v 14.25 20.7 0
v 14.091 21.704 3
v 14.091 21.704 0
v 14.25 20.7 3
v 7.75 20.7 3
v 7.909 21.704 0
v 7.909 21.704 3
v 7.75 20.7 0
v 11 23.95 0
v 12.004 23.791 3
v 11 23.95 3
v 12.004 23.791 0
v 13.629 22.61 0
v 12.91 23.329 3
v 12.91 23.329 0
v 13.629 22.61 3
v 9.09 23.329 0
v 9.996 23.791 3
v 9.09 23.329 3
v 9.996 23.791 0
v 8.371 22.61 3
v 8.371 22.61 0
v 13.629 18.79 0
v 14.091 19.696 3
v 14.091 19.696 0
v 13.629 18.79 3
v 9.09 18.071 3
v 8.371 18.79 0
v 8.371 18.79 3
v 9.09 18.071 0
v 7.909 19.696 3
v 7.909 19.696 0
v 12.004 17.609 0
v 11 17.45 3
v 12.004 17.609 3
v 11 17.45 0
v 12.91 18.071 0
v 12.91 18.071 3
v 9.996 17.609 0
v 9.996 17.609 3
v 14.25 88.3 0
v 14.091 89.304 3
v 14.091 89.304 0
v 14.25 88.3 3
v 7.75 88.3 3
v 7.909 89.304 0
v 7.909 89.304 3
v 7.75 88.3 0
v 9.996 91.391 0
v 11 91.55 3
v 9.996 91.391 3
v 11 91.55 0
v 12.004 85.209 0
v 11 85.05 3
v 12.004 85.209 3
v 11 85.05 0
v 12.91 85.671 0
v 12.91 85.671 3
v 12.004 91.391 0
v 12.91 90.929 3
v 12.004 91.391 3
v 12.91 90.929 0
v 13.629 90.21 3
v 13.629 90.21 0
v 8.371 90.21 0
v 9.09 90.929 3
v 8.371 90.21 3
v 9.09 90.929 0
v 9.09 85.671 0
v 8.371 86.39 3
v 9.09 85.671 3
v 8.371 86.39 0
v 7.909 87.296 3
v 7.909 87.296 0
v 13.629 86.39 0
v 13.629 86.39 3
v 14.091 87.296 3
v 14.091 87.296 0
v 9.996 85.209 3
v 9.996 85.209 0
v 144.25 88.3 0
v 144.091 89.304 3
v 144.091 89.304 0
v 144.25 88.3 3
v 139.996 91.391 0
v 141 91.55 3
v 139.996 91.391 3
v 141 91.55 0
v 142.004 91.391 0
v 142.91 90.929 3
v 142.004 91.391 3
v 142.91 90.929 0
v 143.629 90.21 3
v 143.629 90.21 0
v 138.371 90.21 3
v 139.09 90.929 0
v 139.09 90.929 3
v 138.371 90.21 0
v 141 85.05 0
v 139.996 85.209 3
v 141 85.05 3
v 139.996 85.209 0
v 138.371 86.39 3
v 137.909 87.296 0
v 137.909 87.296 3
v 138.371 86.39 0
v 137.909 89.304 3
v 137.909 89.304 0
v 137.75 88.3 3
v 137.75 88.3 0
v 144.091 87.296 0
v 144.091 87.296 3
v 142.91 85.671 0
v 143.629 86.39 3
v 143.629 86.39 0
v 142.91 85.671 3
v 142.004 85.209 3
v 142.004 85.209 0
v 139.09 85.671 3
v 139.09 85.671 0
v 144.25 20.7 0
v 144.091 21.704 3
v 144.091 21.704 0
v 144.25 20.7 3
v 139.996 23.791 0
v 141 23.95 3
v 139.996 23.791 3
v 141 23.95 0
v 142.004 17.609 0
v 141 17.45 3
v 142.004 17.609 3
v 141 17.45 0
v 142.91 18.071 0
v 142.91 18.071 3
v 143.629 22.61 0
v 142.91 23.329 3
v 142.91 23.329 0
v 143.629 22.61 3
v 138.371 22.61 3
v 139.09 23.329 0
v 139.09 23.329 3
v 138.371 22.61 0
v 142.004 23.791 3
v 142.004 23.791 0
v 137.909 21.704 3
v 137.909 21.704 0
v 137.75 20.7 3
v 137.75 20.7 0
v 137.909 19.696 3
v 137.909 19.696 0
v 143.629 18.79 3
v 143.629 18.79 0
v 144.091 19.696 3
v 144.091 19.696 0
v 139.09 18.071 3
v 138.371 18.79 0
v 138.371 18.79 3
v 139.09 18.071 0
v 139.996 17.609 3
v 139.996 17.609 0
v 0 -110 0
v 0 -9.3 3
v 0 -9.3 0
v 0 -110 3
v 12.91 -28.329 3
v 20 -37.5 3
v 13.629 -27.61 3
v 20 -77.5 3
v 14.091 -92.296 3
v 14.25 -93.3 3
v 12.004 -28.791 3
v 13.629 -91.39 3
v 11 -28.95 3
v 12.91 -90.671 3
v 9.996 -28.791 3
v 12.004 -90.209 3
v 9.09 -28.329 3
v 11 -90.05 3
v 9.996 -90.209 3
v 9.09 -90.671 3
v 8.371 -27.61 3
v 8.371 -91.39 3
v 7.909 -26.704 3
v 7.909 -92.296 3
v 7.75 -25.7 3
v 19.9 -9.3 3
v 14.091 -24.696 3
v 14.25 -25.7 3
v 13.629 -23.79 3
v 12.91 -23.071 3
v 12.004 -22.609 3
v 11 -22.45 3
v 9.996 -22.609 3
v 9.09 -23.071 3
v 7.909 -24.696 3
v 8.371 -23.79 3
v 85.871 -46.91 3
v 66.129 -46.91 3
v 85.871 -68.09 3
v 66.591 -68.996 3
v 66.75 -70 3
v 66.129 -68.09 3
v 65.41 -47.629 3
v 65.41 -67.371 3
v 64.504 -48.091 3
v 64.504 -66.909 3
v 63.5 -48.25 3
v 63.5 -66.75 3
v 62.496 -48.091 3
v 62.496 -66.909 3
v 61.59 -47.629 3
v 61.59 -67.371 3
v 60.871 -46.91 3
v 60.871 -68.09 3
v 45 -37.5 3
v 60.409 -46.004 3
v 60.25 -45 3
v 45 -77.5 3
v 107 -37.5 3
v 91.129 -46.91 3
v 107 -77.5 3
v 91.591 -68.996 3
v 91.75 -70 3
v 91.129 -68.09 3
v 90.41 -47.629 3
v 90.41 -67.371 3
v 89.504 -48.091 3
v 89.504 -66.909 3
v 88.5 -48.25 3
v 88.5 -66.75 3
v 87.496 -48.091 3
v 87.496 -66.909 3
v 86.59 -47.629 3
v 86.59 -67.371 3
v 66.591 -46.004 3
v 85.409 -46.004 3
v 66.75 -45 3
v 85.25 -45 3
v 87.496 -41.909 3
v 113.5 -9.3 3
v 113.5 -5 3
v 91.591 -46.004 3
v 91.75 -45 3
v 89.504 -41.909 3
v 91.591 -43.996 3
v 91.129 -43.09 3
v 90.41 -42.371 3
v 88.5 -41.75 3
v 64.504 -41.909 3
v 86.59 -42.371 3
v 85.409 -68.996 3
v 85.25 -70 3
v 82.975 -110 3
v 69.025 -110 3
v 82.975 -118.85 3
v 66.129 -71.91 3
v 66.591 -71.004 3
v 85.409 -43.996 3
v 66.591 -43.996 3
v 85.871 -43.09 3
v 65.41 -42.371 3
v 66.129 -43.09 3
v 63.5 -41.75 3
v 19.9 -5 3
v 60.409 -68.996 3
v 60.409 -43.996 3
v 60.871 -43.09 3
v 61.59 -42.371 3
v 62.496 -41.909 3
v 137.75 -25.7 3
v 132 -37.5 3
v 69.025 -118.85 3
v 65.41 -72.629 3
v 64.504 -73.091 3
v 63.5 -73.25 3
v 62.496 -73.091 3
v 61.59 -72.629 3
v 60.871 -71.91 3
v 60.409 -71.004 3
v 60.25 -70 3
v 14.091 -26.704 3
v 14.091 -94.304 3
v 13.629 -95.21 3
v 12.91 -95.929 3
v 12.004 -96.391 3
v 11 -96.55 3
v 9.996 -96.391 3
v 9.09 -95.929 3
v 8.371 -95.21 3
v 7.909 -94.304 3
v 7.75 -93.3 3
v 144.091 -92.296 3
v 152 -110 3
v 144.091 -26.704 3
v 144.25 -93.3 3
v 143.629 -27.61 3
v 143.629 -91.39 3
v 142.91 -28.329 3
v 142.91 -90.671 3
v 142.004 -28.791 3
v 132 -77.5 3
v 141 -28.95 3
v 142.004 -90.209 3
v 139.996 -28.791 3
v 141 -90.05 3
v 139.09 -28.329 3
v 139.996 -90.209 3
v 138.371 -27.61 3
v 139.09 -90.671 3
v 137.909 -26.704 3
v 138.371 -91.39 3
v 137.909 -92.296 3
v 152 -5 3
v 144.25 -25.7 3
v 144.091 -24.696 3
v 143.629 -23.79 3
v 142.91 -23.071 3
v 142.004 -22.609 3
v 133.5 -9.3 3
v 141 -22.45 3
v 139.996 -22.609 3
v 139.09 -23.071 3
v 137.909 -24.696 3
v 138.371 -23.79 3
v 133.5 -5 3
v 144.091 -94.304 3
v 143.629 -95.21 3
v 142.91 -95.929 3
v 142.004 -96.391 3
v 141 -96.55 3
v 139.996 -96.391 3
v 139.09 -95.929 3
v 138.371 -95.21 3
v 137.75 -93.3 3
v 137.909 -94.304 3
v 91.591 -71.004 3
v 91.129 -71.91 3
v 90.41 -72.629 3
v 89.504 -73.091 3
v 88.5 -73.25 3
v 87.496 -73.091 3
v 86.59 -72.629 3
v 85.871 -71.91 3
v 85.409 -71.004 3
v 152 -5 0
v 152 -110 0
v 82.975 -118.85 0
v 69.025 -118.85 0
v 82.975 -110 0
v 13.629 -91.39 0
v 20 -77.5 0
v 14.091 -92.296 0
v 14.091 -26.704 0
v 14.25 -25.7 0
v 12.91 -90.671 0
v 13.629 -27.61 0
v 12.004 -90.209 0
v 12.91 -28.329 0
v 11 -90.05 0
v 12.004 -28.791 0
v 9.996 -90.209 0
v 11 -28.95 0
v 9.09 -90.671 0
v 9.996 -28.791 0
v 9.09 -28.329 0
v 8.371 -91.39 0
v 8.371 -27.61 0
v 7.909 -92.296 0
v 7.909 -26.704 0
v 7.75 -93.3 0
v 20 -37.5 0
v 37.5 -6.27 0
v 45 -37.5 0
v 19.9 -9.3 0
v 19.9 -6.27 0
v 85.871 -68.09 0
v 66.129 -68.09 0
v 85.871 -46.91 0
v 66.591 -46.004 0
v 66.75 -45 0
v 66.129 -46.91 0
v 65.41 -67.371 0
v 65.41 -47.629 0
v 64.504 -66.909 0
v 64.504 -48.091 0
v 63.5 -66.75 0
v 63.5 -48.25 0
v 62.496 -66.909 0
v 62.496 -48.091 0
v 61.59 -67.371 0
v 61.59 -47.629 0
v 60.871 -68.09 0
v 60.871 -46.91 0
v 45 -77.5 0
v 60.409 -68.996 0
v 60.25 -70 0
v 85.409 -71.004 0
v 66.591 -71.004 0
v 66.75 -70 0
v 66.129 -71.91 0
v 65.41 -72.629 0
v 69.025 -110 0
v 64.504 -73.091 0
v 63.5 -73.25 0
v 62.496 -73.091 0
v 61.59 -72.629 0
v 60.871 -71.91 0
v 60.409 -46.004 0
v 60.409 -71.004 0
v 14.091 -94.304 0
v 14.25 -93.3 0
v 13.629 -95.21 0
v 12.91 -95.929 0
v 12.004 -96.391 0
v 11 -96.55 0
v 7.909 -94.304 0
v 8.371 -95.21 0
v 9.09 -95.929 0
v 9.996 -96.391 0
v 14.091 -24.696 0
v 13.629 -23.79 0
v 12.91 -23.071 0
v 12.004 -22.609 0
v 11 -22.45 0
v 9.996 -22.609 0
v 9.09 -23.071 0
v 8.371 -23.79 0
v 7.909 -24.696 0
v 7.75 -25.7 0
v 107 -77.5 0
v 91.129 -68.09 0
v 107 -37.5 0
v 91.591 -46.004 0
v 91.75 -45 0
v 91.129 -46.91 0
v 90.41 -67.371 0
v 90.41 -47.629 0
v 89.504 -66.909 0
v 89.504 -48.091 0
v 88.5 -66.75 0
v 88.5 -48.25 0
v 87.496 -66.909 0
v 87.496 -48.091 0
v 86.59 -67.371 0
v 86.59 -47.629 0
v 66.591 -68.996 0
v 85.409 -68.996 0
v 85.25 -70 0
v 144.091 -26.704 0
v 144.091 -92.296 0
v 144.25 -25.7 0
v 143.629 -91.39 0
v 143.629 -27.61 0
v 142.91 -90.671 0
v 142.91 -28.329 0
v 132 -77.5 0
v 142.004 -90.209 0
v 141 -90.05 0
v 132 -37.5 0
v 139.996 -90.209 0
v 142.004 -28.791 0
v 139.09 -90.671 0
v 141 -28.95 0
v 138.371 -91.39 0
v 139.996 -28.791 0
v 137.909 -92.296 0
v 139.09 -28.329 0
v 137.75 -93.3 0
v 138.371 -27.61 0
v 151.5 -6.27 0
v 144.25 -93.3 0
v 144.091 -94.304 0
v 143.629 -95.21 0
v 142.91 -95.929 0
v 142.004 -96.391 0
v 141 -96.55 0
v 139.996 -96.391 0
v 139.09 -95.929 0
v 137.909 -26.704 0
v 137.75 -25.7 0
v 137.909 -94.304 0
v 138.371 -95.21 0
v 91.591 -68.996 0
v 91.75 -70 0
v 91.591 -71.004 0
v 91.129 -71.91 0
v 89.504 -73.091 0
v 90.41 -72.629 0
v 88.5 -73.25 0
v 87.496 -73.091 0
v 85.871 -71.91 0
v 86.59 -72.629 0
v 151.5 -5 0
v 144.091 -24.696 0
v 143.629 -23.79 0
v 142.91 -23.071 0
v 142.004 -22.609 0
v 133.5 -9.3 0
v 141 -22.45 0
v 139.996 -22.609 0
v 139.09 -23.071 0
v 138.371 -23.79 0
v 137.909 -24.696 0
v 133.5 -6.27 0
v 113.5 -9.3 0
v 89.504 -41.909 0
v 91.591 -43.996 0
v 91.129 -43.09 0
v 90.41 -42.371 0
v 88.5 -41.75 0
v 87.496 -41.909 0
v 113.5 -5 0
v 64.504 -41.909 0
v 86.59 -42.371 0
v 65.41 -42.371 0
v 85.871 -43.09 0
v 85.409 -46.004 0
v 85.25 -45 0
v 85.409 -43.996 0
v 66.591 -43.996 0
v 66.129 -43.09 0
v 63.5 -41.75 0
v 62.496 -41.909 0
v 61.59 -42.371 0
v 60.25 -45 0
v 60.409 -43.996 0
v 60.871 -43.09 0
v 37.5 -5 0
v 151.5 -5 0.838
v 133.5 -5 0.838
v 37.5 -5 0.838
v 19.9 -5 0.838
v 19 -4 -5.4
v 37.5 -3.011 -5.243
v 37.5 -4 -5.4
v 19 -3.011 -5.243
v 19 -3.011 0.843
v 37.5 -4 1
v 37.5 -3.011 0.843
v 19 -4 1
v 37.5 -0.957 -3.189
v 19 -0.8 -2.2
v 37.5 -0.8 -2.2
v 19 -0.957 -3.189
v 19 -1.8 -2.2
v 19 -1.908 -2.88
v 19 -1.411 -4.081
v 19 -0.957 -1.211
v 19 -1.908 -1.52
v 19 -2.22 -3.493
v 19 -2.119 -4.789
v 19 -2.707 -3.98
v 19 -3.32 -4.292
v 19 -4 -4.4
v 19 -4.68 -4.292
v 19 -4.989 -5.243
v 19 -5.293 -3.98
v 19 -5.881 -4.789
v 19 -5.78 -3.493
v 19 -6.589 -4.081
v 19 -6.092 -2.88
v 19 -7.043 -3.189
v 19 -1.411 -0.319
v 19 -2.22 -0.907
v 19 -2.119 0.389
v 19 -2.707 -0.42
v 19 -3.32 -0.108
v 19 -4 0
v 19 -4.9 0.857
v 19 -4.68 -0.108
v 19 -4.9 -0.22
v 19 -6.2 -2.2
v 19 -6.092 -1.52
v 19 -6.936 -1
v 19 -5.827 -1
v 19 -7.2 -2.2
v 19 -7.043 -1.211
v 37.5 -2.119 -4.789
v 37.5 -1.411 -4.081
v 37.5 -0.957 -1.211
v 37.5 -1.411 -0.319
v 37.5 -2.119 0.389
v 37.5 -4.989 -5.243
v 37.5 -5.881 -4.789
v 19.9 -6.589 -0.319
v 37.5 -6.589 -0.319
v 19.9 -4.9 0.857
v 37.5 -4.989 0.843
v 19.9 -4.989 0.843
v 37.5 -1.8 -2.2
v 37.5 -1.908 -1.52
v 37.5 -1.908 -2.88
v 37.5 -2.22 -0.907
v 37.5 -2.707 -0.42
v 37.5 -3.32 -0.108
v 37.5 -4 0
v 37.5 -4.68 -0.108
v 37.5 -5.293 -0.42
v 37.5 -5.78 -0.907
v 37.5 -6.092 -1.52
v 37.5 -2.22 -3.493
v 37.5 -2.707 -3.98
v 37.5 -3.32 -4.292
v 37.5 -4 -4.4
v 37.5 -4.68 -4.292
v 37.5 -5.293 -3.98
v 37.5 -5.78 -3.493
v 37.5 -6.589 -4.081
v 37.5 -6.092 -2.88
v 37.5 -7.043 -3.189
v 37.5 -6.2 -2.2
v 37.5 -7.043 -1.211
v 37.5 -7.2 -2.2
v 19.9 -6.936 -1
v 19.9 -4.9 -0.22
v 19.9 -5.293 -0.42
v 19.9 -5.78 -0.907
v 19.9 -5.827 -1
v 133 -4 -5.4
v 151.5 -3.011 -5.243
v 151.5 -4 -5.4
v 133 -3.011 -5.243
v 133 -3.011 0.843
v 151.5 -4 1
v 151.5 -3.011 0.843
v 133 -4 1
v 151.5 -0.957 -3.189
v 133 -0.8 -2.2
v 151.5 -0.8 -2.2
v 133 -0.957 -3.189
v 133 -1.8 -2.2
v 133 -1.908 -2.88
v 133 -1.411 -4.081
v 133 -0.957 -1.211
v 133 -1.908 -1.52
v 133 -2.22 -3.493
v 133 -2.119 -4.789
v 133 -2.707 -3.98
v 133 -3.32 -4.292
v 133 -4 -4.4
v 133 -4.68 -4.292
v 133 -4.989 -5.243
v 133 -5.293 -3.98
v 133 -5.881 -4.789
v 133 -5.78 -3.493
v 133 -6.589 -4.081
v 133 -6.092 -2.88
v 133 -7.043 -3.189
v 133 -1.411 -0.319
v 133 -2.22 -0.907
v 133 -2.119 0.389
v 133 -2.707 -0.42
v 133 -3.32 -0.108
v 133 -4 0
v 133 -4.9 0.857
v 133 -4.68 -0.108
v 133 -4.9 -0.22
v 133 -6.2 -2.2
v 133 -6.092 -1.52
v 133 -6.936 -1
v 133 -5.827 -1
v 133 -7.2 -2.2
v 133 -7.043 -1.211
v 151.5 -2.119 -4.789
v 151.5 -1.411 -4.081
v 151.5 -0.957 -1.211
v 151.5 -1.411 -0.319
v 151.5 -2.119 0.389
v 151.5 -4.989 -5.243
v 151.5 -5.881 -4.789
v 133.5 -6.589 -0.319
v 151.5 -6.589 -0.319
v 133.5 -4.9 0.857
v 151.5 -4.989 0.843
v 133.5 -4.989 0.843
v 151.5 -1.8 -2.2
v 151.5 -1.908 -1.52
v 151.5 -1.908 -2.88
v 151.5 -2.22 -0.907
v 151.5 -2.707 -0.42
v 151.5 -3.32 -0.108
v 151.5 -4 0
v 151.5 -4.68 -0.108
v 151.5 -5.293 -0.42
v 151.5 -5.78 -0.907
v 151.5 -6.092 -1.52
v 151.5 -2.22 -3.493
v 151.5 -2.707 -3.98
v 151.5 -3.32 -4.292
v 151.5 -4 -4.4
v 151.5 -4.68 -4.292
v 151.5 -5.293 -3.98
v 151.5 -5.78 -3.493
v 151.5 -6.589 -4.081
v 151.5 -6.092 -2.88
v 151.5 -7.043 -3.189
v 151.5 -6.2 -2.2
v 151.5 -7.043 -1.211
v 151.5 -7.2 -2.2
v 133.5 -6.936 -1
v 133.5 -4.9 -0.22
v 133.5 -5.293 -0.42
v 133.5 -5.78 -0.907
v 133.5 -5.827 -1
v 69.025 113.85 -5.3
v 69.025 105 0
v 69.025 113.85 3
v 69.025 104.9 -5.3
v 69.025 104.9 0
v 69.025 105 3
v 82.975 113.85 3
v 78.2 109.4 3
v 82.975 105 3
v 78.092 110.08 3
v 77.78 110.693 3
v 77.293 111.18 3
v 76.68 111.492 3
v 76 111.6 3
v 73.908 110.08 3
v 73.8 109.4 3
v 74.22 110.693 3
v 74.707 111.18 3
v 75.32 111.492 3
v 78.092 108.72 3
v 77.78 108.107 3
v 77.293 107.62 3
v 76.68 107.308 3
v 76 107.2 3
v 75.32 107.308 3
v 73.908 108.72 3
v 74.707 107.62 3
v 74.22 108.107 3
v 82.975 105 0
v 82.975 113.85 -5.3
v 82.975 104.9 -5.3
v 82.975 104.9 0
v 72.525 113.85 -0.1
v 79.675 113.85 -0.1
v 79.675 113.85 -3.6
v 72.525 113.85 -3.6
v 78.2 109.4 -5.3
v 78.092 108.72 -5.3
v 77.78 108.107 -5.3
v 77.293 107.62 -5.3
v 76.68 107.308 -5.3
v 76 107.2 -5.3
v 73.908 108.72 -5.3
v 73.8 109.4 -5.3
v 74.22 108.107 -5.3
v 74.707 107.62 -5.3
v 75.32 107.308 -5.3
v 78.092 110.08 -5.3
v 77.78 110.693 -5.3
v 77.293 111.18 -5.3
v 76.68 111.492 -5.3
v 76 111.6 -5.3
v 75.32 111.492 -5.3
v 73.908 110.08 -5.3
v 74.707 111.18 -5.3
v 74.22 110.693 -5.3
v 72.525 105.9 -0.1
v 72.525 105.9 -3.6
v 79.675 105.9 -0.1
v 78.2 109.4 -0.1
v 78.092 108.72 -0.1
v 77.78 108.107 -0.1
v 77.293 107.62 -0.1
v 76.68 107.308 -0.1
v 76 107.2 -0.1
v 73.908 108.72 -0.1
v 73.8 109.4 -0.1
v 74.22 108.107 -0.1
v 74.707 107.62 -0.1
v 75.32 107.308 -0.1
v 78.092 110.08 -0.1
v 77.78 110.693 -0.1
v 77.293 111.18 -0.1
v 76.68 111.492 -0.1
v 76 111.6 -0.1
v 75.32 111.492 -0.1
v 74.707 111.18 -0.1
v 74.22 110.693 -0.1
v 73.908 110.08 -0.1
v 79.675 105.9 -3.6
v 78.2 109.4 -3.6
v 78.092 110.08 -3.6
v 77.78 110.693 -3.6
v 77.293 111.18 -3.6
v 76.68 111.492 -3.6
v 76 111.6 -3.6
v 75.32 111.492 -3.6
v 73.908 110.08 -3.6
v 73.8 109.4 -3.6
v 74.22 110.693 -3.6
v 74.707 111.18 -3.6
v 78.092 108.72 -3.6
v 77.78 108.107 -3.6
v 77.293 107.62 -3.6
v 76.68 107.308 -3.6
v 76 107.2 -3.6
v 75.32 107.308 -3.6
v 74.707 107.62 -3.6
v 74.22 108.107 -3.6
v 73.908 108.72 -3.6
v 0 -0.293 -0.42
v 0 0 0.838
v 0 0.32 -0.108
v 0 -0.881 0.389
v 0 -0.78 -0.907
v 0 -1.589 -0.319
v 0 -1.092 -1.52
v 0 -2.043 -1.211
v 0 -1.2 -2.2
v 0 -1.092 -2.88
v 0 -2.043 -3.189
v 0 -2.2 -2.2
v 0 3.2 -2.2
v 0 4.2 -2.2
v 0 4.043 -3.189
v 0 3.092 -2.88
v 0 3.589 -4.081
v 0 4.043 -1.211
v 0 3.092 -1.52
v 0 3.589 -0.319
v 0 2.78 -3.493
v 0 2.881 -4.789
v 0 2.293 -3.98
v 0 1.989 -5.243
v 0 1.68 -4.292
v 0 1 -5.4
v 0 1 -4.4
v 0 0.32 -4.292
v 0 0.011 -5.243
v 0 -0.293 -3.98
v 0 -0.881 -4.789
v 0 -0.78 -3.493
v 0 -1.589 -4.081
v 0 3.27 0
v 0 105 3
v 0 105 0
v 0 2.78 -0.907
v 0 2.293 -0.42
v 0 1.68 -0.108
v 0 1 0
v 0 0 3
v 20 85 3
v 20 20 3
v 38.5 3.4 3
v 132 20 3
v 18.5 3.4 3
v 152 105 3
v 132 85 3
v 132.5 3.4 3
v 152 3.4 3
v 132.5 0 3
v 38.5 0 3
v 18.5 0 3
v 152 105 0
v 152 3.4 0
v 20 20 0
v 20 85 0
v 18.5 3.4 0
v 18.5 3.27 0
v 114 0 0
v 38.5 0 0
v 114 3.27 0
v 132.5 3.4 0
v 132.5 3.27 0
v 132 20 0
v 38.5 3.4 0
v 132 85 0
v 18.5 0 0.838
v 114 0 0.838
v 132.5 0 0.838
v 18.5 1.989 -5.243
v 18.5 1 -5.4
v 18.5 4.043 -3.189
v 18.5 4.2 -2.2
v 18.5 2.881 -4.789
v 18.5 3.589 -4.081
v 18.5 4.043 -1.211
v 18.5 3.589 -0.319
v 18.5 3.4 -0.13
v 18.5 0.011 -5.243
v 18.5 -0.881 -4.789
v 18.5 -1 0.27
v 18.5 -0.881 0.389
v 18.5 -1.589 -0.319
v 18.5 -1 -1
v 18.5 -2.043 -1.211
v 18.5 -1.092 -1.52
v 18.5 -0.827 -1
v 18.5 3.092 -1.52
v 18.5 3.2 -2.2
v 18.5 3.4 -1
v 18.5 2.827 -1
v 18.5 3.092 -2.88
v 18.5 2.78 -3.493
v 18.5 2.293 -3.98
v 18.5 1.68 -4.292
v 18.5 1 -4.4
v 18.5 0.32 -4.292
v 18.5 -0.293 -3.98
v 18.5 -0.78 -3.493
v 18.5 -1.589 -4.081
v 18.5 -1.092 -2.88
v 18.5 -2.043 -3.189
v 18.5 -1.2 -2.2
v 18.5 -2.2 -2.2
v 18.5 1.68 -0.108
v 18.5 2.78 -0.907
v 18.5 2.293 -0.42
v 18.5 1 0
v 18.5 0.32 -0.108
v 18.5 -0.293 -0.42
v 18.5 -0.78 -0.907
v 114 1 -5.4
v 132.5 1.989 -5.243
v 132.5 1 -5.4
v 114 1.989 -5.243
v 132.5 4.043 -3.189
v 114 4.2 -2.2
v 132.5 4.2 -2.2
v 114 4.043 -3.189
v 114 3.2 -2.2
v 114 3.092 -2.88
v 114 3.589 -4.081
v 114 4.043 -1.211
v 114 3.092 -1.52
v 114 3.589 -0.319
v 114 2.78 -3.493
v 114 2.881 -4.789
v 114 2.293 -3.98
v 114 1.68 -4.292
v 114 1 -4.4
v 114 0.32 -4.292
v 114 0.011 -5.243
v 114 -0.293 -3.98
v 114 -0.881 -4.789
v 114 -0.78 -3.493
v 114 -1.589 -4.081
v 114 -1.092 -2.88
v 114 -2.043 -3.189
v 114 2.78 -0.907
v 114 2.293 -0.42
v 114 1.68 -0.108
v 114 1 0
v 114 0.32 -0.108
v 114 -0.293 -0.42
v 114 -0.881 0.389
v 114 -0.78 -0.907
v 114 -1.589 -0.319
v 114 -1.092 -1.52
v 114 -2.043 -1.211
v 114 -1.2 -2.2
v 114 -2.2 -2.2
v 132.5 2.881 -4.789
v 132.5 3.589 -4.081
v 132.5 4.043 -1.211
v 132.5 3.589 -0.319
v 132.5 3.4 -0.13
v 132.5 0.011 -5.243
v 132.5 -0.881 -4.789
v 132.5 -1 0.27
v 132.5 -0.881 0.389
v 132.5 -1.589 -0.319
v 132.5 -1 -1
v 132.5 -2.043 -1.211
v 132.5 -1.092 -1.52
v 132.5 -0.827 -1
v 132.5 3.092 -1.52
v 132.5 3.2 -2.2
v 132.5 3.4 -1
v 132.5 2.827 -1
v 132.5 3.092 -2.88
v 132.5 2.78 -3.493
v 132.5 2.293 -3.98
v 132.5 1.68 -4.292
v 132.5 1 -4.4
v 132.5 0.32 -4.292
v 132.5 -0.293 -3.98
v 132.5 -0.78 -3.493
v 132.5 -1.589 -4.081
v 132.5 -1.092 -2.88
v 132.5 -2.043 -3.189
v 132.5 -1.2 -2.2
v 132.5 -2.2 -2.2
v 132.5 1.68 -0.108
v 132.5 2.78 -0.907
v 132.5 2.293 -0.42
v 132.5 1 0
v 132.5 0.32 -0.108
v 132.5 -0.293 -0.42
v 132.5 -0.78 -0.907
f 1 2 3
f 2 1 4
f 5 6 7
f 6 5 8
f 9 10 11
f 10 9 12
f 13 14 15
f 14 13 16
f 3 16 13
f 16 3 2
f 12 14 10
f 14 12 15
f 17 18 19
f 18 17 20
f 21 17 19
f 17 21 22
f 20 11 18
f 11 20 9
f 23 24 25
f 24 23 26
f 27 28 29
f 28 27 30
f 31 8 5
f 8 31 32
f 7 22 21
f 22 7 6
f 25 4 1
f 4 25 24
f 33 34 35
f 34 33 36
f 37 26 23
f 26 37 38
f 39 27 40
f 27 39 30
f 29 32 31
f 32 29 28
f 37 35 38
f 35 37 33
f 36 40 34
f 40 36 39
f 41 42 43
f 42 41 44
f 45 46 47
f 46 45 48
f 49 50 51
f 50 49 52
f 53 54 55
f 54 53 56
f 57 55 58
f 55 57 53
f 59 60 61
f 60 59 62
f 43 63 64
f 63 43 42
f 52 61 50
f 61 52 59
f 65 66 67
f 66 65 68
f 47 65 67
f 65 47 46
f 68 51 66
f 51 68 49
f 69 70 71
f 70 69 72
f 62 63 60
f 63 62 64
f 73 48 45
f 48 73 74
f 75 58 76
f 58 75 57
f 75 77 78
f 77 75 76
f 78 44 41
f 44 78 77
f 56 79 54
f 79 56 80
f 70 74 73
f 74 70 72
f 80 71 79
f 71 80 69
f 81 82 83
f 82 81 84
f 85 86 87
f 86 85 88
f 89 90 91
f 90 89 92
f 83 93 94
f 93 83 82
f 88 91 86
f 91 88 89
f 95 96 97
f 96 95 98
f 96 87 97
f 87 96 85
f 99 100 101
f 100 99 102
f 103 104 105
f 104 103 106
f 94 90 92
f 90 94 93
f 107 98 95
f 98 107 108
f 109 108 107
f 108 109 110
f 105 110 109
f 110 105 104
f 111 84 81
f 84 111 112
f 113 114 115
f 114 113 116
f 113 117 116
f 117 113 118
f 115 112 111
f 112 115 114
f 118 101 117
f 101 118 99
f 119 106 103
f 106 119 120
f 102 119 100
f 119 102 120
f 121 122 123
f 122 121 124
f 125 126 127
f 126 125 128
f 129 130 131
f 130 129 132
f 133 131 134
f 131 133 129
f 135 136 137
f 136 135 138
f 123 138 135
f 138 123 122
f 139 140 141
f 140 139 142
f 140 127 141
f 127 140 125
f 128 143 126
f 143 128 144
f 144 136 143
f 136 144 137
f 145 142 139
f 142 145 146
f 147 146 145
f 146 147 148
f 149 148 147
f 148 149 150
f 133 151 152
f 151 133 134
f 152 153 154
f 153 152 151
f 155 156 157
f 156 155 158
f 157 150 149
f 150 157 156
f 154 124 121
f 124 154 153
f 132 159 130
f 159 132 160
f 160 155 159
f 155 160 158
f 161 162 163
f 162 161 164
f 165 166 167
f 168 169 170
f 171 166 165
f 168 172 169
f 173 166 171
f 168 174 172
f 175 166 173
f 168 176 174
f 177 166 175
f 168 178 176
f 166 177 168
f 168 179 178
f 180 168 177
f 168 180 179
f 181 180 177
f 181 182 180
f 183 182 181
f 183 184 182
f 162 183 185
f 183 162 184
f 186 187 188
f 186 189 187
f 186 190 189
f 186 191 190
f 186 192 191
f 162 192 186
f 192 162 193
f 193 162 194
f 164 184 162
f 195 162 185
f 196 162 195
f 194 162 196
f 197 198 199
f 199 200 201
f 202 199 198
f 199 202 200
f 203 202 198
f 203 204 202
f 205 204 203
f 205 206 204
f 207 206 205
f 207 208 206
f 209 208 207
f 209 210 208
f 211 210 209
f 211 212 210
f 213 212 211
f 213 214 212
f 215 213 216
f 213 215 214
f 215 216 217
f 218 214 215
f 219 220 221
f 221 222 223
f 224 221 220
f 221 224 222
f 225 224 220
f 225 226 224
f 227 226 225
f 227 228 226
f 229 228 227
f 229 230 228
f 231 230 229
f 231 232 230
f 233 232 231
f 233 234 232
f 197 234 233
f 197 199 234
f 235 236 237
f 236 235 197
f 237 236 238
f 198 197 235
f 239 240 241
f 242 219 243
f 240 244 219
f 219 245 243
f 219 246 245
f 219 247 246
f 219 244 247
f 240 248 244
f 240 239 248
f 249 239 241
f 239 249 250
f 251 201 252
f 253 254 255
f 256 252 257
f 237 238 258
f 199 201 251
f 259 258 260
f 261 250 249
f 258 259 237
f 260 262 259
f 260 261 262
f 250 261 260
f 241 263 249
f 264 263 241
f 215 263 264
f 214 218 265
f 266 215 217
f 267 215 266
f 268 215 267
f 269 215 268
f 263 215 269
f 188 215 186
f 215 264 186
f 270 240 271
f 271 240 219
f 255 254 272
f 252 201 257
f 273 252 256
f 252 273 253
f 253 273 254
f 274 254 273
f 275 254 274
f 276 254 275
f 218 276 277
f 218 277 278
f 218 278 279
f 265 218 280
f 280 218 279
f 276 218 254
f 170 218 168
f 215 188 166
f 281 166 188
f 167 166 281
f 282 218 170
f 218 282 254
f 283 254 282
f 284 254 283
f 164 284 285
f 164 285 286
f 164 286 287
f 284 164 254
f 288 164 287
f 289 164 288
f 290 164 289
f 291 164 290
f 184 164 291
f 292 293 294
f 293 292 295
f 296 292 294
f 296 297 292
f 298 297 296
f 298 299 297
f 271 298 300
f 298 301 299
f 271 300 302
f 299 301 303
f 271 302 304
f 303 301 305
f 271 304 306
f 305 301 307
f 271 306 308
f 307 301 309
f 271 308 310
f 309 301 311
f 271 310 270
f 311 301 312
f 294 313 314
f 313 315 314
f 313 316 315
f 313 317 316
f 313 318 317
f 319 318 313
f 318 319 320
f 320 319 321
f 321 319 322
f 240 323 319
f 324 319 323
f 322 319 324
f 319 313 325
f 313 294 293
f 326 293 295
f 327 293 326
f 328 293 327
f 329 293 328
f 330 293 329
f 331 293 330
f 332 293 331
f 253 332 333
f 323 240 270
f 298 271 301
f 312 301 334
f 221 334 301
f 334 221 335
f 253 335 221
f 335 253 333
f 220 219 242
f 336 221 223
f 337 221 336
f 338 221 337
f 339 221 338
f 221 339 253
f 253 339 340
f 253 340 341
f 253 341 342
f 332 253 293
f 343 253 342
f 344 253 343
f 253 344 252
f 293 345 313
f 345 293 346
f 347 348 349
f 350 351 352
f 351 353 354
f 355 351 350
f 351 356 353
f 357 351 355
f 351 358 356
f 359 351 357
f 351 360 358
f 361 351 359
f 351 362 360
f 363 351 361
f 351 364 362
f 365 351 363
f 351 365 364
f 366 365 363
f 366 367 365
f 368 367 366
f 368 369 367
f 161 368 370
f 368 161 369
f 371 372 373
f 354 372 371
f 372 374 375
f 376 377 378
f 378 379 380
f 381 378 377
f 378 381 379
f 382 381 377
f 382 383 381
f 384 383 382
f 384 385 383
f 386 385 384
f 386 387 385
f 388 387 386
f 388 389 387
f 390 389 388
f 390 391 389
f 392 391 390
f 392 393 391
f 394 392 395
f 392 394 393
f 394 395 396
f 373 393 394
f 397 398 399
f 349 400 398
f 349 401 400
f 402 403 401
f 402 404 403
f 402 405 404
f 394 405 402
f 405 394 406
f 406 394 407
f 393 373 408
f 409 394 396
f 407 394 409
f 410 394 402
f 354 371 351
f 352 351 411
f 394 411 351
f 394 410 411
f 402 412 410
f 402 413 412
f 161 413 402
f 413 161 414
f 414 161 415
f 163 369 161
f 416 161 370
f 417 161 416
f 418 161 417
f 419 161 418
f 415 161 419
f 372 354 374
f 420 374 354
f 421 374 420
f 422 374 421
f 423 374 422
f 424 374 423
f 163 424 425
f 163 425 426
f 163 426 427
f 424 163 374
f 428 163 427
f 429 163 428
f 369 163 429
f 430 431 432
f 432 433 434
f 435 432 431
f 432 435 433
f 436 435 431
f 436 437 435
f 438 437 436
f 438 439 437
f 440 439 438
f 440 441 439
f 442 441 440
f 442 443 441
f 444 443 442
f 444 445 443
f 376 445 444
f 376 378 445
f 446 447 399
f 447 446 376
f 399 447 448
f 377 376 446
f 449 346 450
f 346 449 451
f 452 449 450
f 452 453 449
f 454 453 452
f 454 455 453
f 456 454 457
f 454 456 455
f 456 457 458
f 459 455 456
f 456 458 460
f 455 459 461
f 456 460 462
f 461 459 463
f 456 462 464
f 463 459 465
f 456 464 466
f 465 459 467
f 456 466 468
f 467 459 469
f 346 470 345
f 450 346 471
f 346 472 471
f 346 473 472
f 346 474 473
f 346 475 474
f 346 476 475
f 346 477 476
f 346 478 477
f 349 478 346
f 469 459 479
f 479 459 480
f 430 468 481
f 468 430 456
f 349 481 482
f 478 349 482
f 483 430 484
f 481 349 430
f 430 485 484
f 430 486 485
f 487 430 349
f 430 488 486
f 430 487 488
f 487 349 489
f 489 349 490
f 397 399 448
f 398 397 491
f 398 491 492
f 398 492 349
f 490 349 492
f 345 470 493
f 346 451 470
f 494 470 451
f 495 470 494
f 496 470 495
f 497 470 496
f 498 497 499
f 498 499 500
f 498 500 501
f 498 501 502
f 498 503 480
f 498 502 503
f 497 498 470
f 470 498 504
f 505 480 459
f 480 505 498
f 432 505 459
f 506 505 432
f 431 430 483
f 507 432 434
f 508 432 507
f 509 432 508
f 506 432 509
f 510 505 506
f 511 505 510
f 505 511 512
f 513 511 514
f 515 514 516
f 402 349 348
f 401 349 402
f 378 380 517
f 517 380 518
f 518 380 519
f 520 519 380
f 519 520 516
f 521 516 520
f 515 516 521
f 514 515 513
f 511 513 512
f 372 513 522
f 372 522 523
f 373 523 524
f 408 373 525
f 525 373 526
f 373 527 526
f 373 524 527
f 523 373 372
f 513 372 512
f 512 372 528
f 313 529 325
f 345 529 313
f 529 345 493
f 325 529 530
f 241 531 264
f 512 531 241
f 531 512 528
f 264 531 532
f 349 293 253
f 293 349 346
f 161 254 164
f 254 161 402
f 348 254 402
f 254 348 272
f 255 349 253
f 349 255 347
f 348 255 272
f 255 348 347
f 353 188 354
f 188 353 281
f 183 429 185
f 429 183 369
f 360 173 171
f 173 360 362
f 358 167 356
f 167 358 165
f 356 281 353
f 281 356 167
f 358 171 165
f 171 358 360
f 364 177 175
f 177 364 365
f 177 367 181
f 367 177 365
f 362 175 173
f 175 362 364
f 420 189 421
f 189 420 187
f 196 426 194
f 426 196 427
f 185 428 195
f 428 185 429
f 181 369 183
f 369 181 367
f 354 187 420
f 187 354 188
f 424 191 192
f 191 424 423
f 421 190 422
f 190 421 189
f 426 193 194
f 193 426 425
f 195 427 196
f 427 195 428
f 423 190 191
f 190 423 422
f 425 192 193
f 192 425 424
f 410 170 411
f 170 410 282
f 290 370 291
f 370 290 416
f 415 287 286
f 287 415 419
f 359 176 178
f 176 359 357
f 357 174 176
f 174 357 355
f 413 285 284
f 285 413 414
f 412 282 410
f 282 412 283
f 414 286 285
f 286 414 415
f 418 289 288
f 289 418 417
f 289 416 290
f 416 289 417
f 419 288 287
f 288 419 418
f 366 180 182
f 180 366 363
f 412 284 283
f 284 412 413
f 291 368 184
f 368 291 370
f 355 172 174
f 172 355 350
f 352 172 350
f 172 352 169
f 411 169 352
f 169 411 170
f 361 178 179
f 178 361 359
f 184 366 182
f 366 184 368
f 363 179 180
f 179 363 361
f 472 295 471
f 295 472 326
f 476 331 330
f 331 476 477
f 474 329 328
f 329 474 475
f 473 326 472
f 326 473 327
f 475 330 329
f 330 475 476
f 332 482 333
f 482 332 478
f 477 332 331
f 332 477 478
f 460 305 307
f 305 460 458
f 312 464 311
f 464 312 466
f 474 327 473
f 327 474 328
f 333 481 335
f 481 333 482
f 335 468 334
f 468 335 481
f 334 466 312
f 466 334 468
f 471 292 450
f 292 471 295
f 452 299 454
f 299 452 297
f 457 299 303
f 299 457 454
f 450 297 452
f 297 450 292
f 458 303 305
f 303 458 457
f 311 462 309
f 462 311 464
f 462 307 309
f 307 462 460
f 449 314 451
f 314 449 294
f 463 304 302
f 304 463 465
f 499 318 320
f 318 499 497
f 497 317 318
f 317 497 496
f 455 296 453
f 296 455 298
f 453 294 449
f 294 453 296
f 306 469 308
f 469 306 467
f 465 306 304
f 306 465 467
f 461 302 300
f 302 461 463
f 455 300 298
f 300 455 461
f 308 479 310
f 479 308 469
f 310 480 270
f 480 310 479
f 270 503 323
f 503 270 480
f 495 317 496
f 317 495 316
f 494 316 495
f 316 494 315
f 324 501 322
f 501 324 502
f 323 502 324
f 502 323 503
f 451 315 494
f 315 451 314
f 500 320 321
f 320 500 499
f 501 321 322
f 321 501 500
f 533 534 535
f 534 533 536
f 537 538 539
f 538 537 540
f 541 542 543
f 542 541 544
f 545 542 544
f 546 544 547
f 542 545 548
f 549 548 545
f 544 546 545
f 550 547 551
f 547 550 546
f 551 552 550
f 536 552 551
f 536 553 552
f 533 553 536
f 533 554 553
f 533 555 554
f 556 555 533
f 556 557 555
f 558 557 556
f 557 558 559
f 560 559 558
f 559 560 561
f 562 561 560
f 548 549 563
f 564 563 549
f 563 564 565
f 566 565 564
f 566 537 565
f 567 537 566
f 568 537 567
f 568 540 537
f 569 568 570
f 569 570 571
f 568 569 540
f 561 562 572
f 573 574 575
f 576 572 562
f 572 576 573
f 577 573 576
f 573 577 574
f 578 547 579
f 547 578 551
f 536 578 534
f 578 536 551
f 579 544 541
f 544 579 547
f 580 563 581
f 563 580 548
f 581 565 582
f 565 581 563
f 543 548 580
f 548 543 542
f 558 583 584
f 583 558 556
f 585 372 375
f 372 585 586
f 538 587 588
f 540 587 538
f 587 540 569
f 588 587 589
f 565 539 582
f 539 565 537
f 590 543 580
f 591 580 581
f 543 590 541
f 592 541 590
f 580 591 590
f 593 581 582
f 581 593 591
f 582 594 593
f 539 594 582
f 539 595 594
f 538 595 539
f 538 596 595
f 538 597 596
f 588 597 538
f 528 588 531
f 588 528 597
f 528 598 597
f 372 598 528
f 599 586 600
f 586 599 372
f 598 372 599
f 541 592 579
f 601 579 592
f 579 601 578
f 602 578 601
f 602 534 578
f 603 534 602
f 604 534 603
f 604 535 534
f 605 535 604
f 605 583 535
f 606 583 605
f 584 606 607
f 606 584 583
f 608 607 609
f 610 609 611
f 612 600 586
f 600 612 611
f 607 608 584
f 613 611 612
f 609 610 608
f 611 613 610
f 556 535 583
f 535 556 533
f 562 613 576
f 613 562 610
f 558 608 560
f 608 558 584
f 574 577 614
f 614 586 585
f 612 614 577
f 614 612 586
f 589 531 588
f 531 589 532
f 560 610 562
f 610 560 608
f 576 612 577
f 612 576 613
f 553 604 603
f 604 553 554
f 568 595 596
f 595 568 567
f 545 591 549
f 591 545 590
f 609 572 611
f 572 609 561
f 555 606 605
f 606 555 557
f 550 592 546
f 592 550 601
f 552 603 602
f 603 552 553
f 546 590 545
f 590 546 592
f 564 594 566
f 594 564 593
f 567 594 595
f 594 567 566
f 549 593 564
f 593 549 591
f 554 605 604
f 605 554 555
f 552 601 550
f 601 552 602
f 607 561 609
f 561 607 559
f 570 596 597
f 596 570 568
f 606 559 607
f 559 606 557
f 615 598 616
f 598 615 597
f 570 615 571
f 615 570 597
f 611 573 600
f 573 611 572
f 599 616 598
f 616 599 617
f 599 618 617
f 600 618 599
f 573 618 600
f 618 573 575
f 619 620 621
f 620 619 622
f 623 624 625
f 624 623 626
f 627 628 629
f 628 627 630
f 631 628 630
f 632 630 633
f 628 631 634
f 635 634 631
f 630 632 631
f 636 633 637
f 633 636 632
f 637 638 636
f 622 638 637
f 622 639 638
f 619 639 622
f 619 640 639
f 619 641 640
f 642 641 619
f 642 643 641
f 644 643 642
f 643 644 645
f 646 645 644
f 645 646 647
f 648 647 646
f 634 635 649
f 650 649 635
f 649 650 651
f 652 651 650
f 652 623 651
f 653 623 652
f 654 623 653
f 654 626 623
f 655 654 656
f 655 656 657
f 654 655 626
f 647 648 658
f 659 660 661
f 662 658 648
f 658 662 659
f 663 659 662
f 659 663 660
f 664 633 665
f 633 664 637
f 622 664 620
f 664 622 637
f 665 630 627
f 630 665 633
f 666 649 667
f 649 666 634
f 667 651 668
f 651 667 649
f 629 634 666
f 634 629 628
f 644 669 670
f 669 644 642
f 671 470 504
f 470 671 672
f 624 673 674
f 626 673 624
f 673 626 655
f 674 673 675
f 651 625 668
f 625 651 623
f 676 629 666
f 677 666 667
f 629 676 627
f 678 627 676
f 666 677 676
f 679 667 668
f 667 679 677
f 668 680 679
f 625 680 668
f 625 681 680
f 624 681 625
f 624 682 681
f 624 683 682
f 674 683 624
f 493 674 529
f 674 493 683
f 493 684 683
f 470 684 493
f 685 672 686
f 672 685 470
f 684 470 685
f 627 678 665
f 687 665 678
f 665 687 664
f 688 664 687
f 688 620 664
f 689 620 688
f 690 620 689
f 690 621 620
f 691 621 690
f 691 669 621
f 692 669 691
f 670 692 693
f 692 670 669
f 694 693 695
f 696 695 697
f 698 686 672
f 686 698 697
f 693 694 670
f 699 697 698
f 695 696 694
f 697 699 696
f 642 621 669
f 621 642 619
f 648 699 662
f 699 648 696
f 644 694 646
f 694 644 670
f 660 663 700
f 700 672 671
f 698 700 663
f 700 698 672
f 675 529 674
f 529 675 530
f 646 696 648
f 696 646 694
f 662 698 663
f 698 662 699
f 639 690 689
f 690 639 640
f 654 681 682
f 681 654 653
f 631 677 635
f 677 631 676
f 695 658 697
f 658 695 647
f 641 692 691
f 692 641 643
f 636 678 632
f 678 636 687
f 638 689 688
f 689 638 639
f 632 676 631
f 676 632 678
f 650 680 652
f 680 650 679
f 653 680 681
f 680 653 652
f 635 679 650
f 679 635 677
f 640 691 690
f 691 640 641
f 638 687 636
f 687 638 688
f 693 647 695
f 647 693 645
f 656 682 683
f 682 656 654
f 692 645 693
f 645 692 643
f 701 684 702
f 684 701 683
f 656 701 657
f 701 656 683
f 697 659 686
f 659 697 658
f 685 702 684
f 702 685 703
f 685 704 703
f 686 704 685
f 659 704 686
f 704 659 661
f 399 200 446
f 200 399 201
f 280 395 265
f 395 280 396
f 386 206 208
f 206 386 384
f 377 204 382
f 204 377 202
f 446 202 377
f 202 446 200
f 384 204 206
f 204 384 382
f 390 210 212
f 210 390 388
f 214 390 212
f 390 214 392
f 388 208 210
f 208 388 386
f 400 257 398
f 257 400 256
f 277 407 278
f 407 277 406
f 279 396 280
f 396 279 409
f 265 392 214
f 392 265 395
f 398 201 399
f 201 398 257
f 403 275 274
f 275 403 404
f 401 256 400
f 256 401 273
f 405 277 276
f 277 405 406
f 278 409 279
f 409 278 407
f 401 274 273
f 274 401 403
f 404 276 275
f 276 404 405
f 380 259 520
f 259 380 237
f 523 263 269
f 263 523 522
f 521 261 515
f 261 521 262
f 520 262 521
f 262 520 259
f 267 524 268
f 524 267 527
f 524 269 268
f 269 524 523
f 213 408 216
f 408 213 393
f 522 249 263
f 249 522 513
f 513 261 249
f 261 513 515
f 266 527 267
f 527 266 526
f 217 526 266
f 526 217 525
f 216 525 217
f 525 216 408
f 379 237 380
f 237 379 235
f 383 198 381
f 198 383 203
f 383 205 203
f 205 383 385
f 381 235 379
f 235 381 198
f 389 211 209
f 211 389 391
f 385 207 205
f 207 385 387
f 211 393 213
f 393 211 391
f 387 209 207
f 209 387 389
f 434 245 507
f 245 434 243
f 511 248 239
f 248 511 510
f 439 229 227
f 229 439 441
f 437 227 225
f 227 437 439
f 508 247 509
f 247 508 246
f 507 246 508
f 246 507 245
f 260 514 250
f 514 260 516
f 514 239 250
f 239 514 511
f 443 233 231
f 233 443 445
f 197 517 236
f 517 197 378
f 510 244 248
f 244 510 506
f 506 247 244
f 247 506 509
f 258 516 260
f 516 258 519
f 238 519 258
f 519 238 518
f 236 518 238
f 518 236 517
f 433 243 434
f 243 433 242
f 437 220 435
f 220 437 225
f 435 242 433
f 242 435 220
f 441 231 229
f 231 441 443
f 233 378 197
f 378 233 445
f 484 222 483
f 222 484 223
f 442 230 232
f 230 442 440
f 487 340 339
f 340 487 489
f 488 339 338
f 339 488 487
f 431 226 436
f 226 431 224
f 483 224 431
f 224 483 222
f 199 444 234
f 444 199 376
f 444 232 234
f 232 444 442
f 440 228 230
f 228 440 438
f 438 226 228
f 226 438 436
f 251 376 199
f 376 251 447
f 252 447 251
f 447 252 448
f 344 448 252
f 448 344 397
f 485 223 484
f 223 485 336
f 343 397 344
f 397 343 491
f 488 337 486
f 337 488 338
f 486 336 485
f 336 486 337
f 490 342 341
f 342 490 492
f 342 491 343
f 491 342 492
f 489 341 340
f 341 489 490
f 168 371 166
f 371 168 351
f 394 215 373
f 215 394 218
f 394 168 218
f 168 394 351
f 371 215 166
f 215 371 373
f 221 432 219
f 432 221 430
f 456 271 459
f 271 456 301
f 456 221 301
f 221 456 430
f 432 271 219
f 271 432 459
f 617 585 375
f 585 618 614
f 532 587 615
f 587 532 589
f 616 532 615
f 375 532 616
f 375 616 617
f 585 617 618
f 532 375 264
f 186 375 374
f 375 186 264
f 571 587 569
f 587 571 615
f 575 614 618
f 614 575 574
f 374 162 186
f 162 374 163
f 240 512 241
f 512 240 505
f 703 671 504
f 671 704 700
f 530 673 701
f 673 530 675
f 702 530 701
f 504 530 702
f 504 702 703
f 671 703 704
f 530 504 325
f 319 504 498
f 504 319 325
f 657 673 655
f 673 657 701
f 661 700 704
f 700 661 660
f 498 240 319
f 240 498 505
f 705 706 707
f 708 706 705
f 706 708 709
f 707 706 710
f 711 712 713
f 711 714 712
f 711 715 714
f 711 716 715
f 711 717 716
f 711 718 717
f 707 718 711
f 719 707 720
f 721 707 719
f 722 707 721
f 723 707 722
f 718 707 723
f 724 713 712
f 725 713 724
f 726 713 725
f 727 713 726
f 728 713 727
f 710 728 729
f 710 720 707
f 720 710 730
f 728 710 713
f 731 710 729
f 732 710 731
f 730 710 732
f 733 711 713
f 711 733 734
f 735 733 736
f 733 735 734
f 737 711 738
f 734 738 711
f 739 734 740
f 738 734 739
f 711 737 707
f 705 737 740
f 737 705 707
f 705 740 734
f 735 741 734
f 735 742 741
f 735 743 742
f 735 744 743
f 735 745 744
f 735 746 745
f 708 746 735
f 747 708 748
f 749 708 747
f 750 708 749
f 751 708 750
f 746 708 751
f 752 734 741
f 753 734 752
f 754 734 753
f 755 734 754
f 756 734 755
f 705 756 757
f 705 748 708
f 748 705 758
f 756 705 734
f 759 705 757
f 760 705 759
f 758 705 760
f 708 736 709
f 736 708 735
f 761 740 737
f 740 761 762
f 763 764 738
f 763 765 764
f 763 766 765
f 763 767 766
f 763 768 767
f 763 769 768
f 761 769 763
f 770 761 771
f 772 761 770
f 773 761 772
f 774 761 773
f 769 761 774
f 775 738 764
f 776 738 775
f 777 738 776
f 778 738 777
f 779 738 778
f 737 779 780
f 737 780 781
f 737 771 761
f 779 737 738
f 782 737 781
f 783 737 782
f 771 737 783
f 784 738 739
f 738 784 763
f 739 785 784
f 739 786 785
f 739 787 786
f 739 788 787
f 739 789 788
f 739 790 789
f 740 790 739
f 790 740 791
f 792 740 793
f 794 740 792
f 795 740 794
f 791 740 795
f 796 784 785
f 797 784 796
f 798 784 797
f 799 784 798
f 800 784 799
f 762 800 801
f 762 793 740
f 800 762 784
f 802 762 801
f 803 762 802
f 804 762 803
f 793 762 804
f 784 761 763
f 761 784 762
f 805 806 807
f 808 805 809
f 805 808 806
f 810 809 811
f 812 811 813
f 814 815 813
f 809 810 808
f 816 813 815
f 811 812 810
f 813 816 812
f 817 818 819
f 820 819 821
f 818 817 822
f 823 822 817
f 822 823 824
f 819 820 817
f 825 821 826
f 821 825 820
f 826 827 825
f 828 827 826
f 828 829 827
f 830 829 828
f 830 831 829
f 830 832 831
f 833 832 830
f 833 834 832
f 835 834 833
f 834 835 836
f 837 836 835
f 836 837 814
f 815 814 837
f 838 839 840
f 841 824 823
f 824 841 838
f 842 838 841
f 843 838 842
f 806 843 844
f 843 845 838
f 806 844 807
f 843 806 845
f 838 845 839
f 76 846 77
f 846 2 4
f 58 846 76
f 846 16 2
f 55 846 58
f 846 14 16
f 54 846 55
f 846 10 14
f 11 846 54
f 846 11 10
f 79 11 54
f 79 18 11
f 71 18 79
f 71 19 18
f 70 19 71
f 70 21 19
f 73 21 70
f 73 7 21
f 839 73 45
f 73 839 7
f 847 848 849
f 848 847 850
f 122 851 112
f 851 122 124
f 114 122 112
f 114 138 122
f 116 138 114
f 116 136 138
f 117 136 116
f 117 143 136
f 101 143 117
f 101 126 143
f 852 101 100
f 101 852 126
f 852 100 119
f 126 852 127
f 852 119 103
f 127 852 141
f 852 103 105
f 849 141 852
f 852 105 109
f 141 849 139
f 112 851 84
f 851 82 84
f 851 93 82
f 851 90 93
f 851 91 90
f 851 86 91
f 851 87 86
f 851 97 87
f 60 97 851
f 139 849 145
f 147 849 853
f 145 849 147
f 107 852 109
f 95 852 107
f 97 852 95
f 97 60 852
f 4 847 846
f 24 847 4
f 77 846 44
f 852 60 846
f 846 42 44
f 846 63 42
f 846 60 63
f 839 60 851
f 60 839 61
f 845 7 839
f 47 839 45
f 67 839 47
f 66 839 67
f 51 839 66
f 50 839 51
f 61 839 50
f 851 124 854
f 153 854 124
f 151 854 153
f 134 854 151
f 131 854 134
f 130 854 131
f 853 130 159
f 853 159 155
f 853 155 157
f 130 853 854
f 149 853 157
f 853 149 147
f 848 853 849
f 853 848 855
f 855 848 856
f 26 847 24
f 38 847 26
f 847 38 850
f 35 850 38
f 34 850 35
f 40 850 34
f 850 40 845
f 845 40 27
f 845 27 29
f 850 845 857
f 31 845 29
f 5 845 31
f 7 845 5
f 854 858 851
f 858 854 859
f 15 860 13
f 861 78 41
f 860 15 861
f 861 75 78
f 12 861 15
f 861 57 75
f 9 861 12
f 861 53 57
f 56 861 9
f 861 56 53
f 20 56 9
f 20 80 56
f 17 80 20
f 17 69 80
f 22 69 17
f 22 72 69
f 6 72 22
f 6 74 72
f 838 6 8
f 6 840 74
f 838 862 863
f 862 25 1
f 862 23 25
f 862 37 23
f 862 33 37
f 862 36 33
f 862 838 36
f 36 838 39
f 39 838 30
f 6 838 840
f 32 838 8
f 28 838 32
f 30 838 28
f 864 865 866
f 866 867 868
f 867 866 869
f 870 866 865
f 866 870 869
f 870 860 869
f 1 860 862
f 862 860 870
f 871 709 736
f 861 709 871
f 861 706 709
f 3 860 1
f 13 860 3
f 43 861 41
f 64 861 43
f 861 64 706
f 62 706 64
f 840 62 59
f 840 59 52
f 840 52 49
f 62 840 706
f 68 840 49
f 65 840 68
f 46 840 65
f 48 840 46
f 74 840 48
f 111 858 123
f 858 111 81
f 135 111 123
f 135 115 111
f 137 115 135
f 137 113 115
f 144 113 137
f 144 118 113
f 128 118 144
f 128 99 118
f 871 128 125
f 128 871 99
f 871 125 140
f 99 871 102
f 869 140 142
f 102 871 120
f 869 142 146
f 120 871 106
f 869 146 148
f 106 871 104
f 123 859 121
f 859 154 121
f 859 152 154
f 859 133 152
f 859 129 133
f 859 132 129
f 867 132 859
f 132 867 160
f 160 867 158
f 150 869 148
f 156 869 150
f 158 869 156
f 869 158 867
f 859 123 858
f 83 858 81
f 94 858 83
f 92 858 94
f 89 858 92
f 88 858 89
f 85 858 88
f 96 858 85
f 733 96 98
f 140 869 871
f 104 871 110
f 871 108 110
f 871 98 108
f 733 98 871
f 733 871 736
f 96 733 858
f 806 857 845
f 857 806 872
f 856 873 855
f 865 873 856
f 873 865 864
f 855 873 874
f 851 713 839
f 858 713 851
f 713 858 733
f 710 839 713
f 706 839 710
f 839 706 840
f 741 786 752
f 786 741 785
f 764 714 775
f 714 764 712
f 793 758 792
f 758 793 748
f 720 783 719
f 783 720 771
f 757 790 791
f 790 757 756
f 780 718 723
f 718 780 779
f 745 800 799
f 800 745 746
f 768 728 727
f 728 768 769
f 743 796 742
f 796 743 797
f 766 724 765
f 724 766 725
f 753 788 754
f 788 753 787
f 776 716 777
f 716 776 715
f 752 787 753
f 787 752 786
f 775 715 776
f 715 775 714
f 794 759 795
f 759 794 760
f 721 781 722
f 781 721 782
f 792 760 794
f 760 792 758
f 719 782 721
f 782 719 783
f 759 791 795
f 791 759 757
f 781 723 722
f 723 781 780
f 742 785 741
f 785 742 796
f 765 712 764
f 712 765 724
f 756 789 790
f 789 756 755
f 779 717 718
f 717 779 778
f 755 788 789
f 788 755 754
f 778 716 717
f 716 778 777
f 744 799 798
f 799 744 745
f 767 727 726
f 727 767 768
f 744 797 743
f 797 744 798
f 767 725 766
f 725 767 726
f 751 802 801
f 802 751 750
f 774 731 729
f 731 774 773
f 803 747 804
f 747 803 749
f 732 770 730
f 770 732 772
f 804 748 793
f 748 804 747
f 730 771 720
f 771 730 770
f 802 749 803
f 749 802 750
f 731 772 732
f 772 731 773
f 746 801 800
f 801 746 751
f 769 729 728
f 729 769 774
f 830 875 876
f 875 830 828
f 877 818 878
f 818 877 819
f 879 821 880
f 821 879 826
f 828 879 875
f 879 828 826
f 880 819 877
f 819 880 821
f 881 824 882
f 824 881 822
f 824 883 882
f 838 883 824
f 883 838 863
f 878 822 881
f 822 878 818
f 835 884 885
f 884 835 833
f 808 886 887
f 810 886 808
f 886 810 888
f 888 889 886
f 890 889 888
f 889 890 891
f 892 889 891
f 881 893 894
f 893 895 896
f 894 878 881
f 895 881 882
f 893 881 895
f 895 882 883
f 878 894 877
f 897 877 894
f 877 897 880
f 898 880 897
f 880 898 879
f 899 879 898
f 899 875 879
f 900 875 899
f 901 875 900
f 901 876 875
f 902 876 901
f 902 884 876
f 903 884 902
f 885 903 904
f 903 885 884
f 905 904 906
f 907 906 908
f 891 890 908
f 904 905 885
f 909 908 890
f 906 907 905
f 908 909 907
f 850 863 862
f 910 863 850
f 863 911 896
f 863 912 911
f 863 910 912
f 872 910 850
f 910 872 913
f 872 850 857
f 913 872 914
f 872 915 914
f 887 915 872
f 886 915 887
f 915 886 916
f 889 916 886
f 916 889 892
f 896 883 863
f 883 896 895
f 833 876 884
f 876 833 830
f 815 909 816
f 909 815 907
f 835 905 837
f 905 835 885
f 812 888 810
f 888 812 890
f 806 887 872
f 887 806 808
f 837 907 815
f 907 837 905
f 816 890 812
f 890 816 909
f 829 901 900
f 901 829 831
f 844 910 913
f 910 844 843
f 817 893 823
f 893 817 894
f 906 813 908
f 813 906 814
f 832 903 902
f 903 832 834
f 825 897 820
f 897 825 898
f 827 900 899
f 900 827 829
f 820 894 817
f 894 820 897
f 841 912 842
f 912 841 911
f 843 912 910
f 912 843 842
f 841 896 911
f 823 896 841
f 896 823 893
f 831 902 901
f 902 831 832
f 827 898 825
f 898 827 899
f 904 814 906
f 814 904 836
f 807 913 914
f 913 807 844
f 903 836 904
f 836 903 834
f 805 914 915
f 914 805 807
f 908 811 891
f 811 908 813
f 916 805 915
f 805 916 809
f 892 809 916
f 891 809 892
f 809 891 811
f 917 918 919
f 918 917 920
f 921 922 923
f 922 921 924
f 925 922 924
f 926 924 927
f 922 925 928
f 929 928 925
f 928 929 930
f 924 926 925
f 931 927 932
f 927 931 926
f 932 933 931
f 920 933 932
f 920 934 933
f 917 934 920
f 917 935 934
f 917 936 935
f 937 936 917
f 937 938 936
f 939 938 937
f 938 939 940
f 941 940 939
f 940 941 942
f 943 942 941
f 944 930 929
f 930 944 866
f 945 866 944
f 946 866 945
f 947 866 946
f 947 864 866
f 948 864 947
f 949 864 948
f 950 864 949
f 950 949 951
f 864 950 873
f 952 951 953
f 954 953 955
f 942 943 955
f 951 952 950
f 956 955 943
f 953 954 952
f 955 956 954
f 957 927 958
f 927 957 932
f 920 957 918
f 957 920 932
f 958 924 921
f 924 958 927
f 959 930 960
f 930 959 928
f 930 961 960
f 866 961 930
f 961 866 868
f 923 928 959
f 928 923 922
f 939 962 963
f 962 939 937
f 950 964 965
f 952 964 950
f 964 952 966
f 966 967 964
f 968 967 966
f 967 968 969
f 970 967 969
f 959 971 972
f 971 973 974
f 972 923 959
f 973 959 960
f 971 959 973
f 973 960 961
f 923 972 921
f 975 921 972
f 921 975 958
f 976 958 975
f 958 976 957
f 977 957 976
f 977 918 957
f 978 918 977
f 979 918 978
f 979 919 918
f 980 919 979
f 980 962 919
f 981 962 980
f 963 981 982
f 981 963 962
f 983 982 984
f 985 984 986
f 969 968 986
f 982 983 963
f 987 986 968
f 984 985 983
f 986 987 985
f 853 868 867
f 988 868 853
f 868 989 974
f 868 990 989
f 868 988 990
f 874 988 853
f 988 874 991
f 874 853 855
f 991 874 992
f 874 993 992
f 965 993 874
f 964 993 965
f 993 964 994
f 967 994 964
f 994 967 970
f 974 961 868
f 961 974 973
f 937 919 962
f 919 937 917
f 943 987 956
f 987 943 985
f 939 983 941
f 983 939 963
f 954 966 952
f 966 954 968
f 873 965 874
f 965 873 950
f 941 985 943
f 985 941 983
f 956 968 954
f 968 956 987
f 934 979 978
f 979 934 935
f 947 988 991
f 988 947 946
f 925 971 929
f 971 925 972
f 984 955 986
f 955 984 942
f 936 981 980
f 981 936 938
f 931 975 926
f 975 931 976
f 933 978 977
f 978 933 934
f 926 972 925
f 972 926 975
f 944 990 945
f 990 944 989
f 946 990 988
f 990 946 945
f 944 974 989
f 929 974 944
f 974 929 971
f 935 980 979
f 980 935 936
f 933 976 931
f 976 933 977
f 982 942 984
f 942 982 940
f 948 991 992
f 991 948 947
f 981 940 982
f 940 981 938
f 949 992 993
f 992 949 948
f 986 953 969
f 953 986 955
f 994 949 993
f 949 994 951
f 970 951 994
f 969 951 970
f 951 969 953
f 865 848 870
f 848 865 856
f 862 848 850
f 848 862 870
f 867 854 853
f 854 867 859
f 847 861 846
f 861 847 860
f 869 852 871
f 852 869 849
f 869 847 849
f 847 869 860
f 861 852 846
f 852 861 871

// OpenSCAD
/*
 LCr tilter
 tilt the LCr downwards to compensate for 
 its upwards projection.
 
 CC BY SA 4.0
 AM Chagas
 20200304

*/
platex = 152;
platey = 105;
platez = 3;

hole1yd = 15.75;
hole1xd = 5.45;

inter1yd = 67.6;
inter1xd = 130;

centerholesx = (platex-inter1xd)/2;
centerholesy = (platey-inter1yd)/2+2;

hole1dia = 6.5;
hole2dia= 4.4;  

tol = 0.1;
//m4 nut
nutd = 6.95;
nuth = 3.3;
//m6 nut
//nutd = 9.82;
//nuth = 4.84;
wall = 2;

thorscrewdistance = 25;
    
$fn=20;
linkl = 20;

module mvs005fit(){
cylinder(d=hole1dia,h=platez+10);
    
translate([0,thorscrewdistance,0]){
cylinder(d=hole1dia,h=platez+10);
    }//translate
translate([thorscrewdistance,thorscrewdistance,0]){
cylinder(d=hole1dia,h=platez+10);
    }//translate
translate([thorscrewdistance,0,0]){
cylinder(d=hole1dia,h=platez+10);
    }//translate
}//module 

module nut_pocket(){

    difference(){
    cube([nutd+wall+5,nutd+wall,nuth+wall+platez]);
        translate([2.5+wall/2,wall/2,wall-0.3]){
        cube([nutd+2*tol,nutd+wall,nuth+2*tol]);
        }//translate
    }//difference
}
module plate_holes(){
    
    cylinder(d=hole1dia,h=platez+1);
    
    translate([0,inter1yd,0]){
        cylinder(d=hole1dia,h=platez+1);
        }
    
    translate([inter1xd,inter1yd,0]){
        cylinder(d=hole1dia,h=platez+1);
        }
        
    translate([inter1xd,0,0]){
        cylinder(d=hole1dia,h=platez+1);
        }    
        }
    
    
    
module plate(extension=1){
difference(){
union(){
cube([platex,platey,platez]);
    
    if (extension==1){
        translate([platex/2-(nutd+wall)/2-2.5,  platey-0.1,-nuth-0.5-platez/2]){
            nut_pocket();
            }//translate
        }//end if
    if (extension==2){
        translate([platex/2-(nutd+wall)/2-2.5,  platey-0.1,0]){ 
        cube([nutd+wall+5,nutd+wall,platez]);
        }
        }//end if
    }//union
    
union(){
    
    
    translate([centerholesx,centerholesy,-0.1]){
        plate_holes();
    }//translate
    if (extension==1){        
    translate([platex/2,platey+hole2dia,-10.5]){
        cylinder(d=hole2dia,h=platez+11);
        
        }//translate
        }//end if
    }//union
    
}//difference
}//plate 
module plate1(){
difference(){
    union(){
plate();
for (i=[0:platex/4:platex/4-1]){
    echo(i);
rotate([0,90,0]){
    translate([(hole2dia+2)/2-1,1,i]){
    difference(){
        cylinder(d=hole2dia+2,h=platex/8-0.5);
            translate([0,0,-0.5]){
                cylinder(d=hole2dia,h=platex/4+1);
            }//translate
        }//difference
    }//translate
    }//rotate

}//for

for (i=[3*platex/4:platex/4:3*platex/4]){
    echo(i);
rotate([0,90,0]){
    translate([(hole2dia+2)/2-1,1,i]){
    difference(){
        cylinder(d=hole2dia+2,h=platex/8-0.5);
            translate([0,0,-0.5]){
                cylinder(d=hole2dia,h=platex/4+1);
            }//translate
        }//difference
    }//translate
    }//rotate

}//for
}// union
translate([platex/8-0.5,-1,-1]){cube([platex/8+1,hole2dia,10]);}
translate([7*platex/8-0.5,-1,-1]){cube([platex/8+1,hole2dia,10]);}

translate([20,20,-1]){cube([platex-40,platey-40,10]);}

}//difference
}//plate1


module plate2(){
translate([0,-5,0]){
    difference(){
    union(){
mirror([0,90,0]){plate(extension=2);
    }

for (i=[platex/8:platex/4:platex/4]){
    echo(i);
rotate([0,90,0]){
    translate([(hole2dia+2)/2-1,1,i]){
    difference(){
        cylinder(d=hole2dia+2,h=platex/8-0.5);
            translate([0,0,-0.5]){
                cylinder(d=hole2dia,h=platex/4+1);
            }//translate
        }//difference
    }//translate
    }//rotate

}//for

for (i=[7*platex/8:platex/4:7*platex/8]){
    echo(i);
rotate([0,90,0]){
    translate([(hole2dia+2)/2-1,1,i]){
    difference(){
        cylinder(d=hole2dia+2,h=platex/8-0.5);
            translate([0,0,-0.5]){
                cylinder(d=hole2dia,h=platex/4+1);
            }//translate
        }//difference
    }//translate
    }//rotate

}//for
}//union
translate([20,-platey/2-20,-1]){
cube([25,40,10]);
    }
translate([platex-45,-platey/2-20,-1]){
cube([25,40,10]);
    }
translate([-0.1,-hole2dia+0.1,-1]){cube([platex/8+1,hole2dia,10]);}
translate([6*platex/8-0.5,-hole2dia+0.1,-1]){cube([platex/8+1,hole2dia,10]);}
translate([(platex-thorscrewdistance)/2,-(platey+thorscrewdistance)/2,-5]){
mvs005fit();}
}//difference

}//translate


}//plate 2

plate1();
plate2();
